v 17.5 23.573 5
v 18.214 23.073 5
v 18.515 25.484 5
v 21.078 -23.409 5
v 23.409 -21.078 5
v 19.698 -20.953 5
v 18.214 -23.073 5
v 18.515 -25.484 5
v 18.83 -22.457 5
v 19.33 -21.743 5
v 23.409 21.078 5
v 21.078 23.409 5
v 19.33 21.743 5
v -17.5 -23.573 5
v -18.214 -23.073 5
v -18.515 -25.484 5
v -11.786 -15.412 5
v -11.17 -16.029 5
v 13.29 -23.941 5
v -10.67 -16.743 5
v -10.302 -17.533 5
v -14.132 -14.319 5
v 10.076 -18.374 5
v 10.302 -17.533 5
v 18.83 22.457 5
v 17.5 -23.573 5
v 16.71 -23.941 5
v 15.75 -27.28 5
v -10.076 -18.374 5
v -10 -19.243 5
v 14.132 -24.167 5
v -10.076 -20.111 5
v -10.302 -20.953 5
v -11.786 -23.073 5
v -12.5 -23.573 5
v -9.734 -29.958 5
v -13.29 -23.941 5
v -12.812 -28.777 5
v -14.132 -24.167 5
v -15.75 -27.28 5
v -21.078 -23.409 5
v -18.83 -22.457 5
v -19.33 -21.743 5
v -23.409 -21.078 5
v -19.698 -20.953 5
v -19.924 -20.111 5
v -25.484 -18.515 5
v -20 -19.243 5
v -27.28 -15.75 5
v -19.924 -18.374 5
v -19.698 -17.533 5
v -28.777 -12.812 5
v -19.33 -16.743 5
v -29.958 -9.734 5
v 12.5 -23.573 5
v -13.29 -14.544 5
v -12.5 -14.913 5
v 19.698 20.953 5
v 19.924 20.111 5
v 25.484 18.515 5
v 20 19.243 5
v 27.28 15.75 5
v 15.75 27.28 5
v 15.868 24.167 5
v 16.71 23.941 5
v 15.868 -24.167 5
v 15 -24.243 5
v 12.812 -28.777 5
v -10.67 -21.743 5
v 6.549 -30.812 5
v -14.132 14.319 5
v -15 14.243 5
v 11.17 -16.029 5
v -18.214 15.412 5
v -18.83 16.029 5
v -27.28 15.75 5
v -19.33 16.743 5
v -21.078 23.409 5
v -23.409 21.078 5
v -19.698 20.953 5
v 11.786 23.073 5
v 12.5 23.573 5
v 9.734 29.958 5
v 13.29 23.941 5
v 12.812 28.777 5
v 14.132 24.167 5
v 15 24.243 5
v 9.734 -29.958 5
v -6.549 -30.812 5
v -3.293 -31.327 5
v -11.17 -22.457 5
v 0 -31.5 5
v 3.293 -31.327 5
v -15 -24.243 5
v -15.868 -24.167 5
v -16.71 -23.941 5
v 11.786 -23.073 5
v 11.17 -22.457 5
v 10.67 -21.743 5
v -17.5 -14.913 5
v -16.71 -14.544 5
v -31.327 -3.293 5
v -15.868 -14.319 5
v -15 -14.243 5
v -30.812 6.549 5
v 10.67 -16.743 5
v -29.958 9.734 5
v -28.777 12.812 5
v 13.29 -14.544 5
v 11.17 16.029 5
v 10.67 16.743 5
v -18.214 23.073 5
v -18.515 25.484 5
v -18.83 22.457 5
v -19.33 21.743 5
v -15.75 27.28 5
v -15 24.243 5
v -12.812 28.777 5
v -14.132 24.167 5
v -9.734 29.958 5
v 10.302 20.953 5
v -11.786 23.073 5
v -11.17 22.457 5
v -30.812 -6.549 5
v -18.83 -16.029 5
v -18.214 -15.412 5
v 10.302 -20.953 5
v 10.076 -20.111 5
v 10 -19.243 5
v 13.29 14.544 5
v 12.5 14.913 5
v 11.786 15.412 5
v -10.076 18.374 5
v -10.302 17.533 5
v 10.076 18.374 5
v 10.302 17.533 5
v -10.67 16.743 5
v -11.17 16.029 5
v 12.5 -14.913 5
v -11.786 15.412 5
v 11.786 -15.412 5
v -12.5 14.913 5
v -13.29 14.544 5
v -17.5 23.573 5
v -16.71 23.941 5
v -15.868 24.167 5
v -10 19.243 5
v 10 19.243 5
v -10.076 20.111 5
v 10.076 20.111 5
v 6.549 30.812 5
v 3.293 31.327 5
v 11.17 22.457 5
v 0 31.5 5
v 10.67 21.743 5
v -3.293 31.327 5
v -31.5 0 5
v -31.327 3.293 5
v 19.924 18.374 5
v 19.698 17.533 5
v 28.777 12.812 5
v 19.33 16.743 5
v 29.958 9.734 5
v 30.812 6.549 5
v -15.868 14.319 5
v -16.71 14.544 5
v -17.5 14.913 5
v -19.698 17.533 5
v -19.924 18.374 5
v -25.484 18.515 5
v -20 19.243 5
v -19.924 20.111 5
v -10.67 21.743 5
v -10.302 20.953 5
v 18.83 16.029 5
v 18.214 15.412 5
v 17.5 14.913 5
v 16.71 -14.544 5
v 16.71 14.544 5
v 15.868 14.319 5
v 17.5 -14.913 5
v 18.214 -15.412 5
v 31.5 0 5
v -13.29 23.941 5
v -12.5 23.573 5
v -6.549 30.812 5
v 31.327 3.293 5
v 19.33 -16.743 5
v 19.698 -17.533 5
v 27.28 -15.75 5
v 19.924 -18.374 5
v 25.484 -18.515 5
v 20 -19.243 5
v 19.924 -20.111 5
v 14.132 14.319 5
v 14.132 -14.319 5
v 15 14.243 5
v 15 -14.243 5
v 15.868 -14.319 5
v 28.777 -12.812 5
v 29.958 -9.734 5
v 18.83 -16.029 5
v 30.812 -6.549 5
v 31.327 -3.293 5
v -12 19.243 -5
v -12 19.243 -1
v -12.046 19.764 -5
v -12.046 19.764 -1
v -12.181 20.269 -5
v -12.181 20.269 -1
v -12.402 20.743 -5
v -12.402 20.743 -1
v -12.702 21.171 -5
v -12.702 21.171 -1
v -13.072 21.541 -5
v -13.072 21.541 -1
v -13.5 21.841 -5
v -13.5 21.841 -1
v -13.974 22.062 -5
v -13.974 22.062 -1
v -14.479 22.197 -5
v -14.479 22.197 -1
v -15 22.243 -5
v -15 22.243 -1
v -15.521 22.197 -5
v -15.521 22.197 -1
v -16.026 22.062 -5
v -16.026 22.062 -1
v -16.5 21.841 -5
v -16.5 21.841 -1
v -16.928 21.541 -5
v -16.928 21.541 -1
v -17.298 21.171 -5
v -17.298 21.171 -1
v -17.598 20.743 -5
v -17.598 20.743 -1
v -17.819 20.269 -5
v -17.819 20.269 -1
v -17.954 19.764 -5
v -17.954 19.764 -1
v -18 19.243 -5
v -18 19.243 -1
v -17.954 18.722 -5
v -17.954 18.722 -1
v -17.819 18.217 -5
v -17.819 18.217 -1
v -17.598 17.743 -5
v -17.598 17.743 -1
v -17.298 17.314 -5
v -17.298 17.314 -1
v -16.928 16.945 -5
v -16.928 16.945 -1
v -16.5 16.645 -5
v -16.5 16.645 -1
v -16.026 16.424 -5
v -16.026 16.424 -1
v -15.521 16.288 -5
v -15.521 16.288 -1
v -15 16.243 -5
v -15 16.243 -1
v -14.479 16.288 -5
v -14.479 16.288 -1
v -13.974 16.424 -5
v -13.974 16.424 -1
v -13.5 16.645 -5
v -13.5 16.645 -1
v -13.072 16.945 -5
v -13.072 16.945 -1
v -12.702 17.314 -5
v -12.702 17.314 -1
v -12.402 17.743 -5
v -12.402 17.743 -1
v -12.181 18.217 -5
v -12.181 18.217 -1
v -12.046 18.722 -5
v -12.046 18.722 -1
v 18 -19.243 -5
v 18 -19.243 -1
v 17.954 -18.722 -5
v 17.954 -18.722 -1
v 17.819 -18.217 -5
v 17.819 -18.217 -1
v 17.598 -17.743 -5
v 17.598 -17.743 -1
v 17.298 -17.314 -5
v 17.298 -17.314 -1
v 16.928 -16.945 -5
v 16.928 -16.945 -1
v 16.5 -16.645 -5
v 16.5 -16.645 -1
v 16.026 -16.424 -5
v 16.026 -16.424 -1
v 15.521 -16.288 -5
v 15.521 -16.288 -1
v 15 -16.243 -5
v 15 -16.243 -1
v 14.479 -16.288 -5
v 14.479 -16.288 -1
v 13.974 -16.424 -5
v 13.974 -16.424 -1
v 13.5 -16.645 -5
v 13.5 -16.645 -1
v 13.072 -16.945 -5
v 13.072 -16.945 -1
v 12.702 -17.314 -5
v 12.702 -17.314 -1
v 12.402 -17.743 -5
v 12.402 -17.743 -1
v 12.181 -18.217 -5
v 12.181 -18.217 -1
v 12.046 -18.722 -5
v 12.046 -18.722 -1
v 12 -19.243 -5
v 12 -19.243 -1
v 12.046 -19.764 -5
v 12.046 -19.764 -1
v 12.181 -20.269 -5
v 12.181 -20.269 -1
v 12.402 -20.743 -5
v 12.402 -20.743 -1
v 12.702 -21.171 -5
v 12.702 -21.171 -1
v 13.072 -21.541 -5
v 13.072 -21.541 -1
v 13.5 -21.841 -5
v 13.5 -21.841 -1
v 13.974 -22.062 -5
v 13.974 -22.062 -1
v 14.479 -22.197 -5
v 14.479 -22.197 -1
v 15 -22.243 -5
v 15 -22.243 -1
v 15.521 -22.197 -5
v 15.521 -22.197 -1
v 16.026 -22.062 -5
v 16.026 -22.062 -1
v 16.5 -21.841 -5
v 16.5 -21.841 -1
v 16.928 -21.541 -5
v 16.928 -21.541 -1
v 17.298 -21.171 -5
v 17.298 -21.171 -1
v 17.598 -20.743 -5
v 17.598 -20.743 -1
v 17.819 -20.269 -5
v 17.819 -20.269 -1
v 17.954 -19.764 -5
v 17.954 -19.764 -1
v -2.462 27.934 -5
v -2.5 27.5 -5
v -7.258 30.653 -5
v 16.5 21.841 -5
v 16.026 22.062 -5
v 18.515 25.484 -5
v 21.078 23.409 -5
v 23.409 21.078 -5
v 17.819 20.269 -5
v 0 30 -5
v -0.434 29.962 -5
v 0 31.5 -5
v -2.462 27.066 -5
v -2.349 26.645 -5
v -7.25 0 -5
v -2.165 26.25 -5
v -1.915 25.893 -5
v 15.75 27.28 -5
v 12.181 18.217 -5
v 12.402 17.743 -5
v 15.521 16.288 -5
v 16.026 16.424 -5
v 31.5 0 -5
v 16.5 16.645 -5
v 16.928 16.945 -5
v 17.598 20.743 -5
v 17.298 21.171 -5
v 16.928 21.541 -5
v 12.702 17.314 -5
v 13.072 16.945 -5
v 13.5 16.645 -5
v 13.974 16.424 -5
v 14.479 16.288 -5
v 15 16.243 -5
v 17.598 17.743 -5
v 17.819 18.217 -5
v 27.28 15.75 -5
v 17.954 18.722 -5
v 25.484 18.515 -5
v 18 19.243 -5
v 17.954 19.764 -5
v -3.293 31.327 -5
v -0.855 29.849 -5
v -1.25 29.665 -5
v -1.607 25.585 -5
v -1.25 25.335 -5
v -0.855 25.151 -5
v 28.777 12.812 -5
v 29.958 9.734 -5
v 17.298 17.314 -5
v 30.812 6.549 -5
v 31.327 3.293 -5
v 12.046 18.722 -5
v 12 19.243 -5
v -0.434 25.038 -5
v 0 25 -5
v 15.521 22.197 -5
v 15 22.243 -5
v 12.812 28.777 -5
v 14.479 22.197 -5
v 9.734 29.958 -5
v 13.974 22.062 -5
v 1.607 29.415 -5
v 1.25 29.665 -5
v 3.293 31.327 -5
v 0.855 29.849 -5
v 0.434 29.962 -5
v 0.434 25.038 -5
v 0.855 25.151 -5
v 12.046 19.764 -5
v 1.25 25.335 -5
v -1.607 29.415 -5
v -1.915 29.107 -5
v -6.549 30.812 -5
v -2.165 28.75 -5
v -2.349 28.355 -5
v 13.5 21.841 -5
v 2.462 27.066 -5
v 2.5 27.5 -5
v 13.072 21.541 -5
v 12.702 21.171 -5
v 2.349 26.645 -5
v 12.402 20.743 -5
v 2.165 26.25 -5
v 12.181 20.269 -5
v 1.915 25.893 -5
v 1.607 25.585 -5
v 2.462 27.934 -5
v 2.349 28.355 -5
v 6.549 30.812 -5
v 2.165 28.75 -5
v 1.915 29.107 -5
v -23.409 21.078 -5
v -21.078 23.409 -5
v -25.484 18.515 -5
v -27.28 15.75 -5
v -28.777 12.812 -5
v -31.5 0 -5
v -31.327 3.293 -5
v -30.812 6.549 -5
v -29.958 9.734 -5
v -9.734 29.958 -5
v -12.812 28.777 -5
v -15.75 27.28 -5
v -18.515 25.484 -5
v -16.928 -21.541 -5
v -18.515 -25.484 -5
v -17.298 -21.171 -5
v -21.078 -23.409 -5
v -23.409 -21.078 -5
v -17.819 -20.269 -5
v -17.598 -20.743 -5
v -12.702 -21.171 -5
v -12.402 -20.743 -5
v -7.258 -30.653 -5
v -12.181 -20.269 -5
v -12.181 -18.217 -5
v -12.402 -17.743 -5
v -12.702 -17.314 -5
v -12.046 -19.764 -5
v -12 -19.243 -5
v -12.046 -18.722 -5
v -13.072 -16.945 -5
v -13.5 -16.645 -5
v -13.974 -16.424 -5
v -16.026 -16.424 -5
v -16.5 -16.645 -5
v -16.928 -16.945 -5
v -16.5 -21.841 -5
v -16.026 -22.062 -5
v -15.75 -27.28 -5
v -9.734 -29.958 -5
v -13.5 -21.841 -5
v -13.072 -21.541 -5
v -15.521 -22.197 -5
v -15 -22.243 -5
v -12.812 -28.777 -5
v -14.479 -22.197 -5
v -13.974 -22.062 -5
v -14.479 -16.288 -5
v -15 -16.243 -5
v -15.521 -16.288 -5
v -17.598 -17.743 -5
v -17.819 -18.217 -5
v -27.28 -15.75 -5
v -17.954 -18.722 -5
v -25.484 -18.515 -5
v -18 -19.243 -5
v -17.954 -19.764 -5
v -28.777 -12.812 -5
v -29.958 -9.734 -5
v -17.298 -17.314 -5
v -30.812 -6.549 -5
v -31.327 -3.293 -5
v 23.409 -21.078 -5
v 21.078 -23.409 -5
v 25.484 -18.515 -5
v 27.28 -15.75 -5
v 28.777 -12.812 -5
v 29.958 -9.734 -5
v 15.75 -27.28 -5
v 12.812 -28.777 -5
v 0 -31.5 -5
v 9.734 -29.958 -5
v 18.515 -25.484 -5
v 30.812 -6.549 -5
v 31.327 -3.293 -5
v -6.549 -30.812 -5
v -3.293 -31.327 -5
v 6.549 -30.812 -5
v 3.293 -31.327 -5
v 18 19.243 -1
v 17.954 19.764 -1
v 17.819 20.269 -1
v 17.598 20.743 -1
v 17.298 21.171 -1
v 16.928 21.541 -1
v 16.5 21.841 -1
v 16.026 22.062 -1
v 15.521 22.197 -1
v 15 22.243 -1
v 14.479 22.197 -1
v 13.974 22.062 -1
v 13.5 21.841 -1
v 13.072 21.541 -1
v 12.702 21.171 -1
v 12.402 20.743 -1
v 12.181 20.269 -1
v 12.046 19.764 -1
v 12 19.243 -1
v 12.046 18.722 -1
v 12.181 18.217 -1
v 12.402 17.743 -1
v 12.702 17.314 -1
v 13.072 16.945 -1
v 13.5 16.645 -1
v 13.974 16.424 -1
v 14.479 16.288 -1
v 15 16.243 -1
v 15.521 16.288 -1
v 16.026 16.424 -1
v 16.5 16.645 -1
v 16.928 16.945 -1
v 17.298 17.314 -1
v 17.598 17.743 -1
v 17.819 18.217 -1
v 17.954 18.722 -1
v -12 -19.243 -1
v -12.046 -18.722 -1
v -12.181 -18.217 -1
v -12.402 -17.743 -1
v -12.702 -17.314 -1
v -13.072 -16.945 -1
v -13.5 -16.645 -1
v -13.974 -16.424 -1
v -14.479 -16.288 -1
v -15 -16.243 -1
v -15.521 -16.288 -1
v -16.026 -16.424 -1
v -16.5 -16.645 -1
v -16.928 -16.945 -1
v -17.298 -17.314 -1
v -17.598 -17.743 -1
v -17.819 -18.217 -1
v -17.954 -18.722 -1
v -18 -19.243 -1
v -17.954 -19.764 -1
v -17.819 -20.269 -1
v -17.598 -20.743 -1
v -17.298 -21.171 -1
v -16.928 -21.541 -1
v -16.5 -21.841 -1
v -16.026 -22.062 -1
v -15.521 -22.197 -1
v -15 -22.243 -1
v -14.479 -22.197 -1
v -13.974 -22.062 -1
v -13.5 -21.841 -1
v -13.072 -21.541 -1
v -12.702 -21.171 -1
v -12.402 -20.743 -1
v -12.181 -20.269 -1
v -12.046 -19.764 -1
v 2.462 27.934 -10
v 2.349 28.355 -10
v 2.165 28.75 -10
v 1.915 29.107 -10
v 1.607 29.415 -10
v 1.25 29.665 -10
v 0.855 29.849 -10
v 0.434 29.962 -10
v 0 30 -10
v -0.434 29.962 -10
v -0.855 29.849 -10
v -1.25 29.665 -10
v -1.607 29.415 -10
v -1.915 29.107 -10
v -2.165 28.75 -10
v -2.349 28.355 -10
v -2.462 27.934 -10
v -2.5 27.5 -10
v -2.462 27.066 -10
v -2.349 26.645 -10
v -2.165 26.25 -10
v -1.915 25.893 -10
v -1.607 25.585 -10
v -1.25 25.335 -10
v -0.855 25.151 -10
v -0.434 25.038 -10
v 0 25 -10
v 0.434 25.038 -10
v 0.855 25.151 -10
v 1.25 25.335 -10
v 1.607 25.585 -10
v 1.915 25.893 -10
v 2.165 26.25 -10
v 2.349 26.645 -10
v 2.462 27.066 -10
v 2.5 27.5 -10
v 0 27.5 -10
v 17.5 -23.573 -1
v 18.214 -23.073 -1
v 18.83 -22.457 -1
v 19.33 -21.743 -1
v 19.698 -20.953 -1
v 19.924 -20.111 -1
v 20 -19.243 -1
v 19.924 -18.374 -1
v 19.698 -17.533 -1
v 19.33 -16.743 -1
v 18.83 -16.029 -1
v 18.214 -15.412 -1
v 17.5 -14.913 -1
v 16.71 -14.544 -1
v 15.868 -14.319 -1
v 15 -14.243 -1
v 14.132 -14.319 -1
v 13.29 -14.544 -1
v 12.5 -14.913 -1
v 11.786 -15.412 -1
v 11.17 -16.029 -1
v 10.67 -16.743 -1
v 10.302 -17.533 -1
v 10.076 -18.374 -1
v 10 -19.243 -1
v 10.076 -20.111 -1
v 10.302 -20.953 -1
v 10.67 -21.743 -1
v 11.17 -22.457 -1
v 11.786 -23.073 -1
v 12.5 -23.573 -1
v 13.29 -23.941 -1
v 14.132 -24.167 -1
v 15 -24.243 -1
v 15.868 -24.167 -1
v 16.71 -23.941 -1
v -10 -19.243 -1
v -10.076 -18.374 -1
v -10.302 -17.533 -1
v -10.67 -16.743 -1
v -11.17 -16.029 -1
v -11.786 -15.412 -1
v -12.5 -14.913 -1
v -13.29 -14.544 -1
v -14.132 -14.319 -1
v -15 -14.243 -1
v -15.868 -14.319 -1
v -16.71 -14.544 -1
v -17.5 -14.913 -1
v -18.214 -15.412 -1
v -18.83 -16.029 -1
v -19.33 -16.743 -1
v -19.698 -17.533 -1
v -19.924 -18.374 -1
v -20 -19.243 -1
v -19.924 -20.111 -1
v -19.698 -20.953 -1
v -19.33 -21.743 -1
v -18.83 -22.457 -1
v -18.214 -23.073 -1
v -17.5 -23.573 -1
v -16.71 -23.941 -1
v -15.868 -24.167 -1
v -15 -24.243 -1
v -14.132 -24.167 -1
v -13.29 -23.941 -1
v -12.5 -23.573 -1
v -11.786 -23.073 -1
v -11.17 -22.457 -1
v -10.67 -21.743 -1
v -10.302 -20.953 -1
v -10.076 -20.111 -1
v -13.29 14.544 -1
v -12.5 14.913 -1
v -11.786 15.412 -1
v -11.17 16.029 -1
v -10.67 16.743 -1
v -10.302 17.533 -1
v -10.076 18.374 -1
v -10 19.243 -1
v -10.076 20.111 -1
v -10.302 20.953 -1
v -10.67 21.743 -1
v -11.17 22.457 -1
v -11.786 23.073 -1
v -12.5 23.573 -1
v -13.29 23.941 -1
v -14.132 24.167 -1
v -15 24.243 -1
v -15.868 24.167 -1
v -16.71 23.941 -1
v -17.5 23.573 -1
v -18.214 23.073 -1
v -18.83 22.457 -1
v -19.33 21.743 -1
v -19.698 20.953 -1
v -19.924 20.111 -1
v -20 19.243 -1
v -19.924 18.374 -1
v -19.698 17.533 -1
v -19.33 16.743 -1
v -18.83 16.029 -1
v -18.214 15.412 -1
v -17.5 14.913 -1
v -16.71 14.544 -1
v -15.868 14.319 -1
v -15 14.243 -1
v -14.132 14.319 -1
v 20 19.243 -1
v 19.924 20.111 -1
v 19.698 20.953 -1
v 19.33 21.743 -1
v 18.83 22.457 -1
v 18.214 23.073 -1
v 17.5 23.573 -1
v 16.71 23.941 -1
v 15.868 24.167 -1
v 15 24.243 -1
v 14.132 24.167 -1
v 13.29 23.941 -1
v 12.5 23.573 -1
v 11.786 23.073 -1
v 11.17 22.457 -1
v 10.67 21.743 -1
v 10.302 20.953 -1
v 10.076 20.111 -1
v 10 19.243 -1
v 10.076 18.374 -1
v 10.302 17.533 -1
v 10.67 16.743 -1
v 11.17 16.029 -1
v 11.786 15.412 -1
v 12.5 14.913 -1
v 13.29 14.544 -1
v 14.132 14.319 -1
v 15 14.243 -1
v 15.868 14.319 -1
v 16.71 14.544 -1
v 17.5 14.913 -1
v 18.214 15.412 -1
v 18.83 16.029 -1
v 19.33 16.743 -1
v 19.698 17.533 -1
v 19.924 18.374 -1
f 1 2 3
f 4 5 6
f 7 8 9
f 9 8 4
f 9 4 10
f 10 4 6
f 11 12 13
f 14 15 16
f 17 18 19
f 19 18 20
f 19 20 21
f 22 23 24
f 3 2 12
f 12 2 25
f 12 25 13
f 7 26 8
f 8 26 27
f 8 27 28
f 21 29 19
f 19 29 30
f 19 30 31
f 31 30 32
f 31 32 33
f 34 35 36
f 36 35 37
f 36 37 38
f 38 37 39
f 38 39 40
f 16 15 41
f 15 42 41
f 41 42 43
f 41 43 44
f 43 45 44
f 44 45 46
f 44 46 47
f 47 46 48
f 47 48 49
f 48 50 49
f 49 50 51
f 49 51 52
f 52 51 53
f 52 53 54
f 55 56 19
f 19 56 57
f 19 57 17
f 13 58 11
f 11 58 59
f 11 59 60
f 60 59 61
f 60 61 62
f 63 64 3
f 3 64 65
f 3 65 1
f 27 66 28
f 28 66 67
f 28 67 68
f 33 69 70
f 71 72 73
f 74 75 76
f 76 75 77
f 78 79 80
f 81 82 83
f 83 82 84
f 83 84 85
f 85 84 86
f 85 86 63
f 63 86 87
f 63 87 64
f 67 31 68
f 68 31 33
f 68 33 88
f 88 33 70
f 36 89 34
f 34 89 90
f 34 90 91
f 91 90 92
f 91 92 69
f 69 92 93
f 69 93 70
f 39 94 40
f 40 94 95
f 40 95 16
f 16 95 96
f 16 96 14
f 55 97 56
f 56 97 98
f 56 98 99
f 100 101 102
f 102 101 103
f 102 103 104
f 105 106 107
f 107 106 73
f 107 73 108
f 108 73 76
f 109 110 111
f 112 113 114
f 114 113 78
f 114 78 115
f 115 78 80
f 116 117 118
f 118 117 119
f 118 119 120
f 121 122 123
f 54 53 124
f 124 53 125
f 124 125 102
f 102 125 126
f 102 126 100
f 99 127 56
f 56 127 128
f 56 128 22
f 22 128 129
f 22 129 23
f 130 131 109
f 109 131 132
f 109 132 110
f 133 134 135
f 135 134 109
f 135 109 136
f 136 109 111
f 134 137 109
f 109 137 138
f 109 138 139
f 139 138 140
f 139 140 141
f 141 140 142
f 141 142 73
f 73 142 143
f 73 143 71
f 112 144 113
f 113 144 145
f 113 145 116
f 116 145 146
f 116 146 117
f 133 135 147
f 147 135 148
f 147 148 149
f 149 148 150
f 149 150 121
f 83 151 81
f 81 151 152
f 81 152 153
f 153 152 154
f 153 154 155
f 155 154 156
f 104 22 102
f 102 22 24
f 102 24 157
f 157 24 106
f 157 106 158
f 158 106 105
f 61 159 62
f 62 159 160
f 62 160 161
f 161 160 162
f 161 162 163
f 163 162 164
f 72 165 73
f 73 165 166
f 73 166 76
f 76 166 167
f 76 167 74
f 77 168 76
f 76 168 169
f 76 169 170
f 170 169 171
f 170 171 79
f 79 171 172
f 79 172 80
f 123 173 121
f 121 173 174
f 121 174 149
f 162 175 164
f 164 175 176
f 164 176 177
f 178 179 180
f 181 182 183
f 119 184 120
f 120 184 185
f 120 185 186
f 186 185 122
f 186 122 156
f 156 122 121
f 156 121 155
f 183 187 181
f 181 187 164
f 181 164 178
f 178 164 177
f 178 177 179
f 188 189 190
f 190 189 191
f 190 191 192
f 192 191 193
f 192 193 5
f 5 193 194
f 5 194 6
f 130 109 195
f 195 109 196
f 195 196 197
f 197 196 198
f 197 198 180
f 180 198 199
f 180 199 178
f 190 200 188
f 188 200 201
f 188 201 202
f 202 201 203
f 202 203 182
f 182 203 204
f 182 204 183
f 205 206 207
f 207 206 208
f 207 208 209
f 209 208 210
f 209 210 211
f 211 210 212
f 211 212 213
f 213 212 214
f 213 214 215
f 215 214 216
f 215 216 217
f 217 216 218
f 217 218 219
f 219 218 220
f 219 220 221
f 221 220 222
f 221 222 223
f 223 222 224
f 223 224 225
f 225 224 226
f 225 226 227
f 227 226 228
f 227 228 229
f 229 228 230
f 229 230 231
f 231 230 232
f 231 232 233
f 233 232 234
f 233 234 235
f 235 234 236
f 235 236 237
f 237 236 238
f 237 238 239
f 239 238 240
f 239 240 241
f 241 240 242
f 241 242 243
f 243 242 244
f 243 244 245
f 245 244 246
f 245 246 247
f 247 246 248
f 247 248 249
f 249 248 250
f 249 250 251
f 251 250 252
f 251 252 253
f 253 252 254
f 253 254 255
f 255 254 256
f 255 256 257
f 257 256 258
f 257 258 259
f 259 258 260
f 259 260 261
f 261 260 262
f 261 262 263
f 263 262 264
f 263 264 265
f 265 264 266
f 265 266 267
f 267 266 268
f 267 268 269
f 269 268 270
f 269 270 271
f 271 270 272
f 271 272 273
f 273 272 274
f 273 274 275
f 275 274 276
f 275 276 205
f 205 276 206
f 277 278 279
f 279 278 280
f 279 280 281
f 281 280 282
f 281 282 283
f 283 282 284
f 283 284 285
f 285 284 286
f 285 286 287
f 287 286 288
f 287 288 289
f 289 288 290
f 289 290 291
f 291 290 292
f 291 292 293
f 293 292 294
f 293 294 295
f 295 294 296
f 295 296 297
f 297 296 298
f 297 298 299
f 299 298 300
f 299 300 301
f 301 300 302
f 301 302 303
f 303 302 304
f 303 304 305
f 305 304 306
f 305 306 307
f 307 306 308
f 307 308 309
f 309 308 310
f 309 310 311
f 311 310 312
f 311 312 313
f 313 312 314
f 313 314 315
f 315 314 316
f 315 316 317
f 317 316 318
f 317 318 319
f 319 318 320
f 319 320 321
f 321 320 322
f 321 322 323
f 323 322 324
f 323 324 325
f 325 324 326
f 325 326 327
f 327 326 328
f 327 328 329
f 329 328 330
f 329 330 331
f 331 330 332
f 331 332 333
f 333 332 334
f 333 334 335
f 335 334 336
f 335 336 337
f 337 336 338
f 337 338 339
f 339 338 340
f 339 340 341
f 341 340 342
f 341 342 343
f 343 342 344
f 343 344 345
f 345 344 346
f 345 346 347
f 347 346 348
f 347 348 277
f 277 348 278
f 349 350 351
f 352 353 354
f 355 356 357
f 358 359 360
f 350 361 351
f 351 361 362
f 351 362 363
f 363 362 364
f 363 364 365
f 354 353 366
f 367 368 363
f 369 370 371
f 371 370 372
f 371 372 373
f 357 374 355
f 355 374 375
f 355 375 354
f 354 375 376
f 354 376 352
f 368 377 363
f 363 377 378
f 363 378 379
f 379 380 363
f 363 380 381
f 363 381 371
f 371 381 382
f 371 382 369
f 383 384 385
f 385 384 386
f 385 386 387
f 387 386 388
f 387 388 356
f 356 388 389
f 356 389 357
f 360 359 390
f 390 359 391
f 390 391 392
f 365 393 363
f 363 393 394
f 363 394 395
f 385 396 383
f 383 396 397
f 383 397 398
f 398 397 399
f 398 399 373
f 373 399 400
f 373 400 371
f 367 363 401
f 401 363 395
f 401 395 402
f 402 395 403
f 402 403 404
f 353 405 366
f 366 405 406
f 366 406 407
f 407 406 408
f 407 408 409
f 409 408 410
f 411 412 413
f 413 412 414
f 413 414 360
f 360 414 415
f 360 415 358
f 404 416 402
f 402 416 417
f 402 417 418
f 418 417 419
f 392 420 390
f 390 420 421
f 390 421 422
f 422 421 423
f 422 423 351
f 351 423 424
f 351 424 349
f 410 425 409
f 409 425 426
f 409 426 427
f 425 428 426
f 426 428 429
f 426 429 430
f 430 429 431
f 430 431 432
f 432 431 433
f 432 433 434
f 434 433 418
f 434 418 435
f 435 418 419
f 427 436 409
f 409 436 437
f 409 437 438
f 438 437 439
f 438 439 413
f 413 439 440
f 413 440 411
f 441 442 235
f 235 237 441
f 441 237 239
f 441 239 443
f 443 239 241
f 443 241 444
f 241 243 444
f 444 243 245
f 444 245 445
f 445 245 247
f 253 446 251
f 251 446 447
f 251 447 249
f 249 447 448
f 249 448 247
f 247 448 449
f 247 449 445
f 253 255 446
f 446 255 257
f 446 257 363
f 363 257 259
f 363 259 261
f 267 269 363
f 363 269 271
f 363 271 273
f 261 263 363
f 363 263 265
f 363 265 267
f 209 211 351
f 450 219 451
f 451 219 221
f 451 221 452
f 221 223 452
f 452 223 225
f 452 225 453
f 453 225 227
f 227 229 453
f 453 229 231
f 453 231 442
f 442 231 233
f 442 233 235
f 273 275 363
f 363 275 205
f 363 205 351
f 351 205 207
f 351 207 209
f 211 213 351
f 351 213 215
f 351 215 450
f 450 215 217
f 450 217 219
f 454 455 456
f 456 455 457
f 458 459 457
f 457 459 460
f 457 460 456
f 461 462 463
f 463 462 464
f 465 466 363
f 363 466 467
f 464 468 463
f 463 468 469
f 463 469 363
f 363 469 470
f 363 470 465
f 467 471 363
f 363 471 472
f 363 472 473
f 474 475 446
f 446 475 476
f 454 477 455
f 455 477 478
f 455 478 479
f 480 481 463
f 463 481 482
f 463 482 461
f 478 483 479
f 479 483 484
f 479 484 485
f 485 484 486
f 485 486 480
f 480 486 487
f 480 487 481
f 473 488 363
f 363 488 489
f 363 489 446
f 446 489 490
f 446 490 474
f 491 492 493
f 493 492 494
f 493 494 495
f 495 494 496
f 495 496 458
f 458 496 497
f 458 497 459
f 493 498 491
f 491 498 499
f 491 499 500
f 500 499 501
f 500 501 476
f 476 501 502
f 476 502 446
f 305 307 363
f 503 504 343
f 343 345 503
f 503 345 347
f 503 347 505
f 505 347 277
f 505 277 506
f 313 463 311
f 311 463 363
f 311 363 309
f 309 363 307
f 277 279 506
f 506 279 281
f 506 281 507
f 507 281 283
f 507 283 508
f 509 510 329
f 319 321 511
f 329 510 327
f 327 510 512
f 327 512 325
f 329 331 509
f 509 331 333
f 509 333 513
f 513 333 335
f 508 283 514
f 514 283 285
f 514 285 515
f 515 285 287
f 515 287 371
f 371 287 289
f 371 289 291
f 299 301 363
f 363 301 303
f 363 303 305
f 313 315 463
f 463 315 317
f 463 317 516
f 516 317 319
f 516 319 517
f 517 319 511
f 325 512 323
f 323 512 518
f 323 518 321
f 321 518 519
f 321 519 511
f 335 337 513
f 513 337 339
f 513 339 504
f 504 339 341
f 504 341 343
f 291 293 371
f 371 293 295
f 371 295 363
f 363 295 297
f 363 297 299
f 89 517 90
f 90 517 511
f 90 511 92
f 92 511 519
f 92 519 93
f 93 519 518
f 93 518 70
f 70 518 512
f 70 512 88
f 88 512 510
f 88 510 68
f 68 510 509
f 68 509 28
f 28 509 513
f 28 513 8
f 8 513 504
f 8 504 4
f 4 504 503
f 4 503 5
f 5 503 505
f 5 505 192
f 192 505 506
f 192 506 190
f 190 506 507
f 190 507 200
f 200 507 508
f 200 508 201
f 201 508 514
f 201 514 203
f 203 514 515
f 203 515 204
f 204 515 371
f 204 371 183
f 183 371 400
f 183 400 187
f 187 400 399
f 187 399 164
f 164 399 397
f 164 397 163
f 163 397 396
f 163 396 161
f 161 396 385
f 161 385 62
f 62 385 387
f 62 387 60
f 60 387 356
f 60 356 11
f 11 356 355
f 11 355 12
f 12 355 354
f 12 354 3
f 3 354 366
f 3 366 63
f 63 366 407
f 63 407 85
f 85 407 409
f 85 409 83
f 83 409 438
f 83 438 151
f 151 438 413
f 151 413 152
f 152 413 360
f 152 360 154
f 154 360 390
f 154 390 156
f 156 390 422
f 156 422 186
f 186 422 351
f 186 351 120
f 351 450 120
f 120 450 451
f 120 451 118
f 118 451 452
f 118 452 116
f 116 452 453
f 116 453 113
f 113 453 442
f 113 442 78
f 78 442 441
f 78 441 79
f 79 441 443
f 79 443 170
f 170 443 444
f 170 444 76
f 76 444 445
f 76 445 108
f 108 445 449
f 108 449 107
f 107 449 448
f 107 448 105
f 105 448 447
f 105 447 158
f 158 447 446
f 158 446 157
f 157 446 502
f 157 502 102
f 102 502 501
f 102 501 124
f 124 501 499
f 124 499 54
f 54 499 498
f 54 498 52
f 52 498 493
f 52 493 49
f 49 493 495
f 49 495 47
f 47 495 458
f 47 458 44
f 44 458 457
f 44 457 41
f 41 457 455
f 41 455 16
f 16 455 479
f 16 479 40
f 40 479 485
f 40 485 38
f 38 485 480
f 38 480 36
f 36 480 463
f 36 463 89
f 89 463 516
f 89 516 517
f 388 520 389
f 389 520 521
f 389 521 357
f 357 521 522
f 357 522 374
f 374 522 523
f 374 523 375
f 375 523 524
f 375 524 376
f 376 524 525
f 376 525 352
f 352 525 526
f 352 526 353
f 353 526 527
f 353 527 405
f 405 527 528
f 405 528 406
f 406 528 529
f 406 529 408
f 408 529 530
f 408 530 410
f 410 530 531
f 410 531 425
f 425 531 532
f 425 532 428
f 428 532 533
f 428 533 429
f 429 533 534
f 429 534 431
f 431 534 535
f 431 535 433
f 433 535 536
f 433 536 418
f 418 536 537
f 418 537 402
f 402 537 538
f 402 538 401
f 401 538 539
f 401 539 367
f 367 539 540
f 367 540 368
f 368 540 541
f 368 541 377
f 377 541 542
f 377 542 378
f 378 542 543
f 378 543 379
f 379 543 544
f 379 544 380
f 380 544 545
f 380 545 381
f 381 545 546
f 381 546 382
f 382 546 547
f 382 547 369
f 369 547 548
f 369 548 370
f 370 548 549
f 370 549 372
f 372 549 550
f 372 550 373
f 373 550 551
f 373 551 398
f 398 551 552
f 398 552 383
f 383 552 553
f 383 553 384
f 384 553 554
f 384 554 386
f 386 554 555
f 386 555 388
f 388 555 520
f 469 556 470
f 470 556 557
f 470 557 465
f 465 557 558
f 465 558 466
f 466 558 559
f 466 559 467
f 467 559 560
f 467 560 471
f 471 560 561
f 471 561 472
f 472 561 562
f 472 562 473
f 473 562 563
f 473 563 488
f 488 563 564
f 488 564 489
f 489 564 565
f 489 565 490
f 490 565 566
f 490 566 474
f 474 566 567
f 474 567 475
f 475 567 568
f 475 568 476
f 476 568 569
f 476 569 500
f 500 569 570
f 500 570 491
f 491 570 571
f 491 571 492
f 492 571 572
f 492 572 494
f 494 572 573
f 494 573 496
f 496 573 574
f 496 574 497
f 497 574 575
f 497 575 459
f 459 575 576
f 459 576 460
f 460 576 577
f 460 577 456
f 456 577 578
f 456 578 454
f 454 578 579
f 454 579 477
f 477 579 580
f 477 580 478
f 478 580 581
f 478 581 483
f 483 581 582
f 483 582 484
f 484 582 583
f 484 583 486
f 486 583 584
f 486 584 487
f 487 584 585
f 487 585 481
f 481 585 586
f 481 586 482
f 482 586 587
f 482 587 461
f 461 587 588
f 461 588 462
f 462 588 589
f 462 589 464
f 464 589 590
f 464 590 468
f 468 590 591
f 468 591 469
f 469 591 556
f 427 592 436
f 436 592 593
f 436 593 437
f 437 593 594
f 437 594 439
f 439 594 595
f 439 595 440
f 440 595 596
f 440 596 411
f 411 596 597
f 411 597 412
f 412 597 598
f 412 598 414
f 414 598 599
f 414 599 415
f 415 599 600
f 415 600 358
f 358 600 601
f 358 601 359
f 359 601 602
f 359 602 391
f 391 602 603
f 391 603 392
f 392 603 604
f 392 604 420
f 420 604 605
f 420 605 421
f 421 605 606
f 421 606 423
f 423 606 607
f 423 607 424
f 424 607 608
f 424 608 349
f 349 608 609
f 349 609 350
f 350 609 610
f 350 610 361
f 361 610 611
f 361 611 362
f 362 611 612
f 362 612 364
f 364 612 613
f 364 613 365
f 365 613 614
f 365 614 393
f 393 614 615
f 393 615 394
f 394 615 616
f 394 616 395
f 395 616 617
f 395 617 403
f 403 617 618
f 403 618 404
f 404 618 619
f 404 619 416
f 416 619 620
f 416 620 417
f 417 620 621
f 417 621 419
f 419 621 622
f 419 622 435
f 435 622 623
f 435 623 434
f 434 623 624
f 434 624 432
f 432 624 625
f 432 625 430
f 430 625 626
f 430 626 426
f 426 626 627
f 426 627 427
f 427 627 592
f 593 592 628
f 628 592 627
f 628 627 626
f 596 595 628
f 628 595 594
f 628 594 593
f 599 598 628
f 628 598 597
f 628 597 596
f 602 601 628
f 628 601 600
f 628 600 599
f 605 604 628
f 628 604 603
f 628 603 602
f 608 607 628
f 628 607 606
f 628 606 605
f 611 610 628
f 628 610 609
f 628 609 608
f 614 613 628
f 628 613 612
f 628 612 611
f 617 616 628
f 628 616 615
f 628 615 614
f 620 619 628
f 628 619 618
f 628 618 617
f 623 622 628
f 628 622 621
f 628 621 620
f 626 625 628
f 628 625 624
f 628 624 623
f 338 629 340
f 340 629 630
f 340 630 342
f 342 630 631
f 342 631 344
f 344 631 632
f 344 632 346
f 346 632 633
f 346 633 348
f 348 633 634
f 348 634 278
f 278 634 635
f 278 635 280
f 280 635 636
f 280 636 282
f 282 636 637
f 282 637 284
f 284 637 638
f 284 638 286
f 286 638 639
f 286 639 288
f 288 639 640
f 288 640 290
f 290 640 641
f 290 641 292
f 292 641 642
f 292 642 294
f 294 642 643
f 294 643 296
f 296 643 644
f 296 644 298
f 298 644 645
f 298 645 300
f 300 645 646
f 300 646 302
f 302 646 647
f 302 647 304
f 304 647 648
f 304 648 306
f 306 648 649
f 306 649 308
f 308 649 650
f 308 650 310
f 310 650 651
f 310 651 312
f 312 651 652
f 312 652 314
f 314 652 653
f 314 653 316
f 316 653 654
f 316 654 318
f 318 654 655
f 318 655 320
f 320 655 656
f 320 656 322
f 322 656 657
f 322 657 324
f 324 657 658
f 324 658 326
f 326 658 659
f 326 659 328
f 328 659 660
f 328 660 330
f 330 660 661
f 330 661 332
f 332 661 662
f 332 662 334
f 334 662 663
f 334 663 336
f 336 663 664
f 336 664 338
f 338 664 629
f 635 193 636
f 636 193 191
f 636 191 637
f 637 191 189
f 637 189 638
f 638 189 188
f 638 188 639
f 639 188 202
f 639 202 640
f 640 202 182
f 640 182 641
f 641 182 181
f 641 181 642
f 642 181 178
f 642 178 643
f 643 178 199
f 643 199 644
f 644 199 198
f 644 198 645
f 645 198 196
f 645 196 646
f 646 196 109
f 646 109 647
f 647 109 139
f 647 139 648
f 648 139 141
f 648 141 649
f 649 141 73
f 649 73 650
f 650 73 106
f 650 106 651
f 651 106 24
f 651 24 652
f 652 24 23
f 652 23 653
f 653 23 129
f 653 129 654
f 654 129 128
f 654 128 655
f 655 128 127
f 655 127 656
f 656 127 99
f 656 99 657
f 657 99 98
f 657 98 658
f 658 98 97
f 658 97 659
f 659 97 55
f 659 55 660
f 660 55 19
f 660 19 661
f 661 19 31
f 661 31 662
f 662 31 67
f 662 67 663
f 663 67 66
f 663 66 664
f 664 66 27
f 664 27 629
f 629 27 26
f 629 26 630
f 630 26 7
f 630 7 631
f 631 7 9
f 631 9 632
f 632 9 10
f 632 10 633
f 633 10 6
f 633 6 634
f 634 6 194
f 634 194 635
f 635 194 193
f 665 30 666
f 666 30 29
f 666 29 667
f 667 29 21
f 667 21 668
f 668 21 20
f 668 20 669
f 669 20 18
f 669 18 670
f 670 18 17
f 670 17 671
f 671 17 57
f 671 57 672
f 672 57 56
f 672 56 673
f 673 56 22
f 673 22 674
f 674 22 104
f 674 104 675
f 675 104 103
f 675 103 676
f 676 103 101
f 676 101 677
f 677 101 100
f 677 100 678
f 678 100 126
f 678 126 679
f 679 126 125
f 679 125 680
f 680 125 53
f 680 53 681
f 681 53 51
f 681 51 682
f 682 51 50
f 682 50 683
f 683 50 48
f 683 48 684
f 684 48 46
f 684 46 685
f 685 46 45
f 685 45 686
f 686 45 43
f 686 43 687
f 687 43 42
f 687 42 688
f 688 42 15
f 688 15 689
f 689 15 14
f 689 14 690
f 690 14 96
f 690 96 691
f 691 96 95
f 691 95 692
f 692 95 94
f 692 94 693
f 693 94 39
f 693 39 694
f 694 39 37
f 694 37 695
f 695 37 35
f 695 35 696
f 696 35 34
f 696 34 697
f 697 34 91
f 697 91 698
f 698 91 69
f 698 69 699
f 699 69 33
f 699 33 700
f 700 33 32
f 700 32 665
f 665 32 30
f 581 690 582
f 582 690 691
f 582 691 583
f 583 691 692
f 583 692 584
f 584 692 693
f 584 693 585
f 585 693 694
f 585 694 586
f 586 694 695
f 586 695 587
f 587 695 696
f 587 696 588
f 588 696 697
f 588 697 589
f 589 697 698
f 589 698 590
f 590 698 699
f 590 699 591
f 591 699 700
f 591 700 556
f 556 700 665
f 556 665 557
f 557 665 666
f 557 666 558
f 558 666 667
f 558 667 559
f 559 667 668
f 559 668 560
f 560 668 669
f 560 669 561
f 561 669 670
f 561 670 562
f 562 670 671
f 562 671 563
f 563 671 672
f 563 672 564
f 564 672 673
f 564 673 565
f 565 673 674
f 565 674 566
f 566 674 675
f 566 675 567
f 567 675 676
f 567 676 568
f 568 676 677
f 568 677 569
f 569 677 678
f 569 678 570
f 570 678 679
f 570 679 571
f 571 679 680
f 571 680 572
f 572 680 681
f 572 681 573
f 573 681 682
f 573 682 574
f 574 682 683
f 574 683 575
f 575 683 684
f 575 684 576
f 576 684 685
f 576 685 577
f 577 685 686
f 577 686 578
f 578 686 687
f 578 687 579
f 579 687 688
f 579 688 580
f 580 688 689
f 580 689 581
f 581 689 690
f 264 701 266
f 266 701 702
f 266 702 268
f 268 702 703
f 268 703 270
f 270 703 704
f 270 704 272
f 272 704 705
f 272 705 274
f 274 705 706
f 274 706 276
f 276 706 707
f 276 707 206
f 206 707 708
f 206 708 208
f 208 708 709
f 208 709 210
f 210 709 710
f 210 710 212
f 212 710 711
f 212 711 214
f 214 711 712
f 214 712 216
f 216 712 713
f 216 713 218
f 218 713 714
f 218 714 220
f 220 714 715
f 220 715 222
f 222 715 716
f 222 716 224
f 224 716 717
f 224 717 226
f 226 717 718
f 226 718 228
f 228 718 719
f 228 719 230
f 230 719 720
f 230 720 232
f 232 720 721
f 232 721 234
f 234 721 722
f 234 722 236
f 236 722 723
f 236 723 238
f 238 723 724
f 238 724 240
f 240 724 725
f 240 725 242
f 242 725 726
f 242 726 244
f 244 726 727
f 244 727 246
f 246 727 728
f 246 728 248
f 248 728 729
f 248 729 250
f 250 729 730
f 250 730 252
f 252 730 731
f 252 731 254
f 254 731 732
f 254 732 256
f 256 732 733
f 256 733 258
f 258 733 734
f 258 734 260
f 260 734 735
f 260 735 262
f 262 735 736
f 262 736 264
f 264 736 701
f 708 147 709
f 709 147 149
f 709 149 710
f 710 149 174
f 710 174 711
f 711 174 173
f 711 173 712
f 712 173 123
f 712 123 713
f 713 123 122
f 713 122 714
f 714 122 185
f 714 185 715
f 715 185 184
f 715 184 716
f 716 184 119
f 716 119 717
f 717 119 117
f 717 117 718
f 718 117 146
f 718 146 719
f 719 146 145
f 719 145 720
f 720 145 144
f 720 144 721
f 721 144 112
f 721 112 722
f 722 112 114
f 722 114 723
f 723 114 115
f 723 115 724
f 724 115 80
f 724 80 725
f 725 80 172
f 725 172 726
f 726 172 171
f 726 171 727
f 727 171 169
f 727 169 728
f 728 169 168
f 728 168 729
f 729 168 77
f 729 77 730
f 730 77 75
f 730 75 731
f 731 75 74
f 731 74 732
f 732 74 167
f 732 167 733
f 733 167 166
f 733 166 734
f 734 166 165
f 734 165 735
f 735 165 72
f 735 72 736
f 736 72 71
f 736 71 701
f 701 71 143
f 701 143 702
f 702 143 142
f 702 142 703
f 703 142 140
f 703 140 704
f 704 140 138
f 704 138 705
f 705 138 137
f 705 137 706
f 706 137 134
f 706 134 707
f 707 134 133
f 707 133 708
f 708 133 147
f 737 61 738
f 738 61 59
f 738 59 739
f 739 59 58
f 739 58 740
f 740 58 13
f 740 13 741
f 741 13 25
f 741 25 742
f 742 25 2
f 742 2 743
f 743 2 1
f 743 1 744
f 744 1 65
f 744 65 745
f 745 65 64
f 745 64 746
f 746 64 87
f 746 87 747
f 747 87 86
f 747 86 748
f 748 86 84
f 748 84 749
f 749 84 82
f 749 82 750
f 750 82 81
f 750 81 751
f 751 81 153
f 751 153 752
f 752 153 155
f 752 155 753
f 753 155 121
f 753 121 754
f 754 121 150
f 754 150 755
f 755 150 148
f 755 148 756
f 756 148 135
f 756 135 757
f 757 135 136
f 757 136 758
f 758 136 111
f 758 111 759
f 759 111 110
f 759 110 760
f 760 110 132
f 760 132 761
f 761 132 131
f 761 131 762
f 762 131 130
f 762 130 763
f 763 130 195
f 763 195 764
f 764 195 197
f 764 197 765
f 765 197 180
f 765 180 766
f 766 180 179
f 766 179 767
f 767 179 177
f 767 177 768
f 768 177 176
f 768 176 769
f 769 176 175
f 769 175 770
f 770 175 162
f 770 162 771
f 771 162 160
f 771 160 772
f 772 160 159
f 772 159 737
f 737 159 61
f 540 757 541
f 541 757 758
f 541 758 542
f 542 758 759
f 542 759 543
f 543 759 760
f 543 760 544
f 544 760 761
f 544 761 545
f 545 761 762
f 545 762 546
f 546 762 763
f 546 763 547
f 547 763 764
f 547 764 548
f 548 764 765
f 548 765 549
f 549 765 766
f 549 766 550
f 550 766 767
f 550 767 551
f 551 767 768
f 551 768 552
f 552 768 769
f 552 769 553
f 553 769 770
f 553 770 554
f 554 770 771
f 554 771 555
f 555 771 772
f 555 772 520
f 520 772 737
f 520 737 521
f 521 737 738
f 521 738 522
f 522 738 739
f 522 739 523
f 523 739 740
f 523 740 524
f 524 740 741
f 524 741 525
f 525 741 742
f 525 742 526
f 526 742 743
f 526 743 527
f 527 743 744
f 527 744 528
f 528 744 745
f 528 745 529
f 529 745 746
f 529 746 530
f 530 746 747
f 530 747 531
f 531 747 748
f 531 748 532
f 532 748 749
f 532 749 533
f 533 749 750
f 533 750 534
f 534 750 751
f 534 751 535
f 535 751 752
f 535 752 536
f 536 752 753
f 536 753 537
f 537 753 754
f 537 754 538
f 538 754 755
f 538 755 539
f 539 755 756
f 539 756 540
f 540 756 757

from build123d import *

# Parameters (mm, degrees)
SKETCH1_R           = 31.5
BOSS_EXTRUDE1_DEPTH = 5
SKETCH2_R           = 3
CUT_EXTRUDE1_DEPTH  = 11
SKETCH2_4_R         = 2.5
BOSS_EXTRUDE2_DEPTH = 15
SKETCH2_5_R         = 5
CUT_EXTRUDE2_DEPTH  = 6


with BuildPart() as part:
    # Sketch1 → Boss-Extrude1 (new body, symmetric)
    with BuildSketch(Plane.XY):
        Circle(SKETCH1_R)
    extrude(amount=BOSS_EXTRUDE1_DEPTH, both=True)

    # Sketch2 → Cut-Extrude1 (cut, through all)
    with BuildSketch(Plane.XY.offset(5)):
        with Locations((-15, 19.242640687)):
            Circle(SKETCH2_R)
        with Locations((-15, -19.242640687)):
            Circle(SKETCH2_R)
        with Locations((15, -19.242640687)):
            Circle(SKETCH2_R)
        with Locations((15, 19.242640687)):
            Circle(SKETCH2_R)
    extrude(amount=-CUT_EXTRUDE1_DEPTH, mode=Mode.SUBTRACT)

    # Sketch2<4> → Boss-Extrude2 (add)
    with BuildSketch(Plane.XY.offset(5)):
        with Locations((0, 27.5)):
            Circle(SKETCH2_4_R)
    extrude(amount=-BOSS_EXTRUDE2_DEPTH)

    # Sketch2<5> → Cut-Extrude2 (cut)
    with BuildSketch(Plane.XY.offset(5)):
        with Locations((-15, 19.242640687)):
            Circle(SKETCH2_5_R)
        with Locations((-15, -19.242640687)):
            Circle(SKETCH2_5_R)
        with Locations((15, -19.242640687)):
            Circle(SKETCH2_5_R)
        with Locations((15, 19.242640687)):
            Circle(SKETCH2_5_R)
    extrude(amount=-CUT_EXTRUDE2_DEPTH, mode=Mode.SUBTRACT)


solid = part.part
